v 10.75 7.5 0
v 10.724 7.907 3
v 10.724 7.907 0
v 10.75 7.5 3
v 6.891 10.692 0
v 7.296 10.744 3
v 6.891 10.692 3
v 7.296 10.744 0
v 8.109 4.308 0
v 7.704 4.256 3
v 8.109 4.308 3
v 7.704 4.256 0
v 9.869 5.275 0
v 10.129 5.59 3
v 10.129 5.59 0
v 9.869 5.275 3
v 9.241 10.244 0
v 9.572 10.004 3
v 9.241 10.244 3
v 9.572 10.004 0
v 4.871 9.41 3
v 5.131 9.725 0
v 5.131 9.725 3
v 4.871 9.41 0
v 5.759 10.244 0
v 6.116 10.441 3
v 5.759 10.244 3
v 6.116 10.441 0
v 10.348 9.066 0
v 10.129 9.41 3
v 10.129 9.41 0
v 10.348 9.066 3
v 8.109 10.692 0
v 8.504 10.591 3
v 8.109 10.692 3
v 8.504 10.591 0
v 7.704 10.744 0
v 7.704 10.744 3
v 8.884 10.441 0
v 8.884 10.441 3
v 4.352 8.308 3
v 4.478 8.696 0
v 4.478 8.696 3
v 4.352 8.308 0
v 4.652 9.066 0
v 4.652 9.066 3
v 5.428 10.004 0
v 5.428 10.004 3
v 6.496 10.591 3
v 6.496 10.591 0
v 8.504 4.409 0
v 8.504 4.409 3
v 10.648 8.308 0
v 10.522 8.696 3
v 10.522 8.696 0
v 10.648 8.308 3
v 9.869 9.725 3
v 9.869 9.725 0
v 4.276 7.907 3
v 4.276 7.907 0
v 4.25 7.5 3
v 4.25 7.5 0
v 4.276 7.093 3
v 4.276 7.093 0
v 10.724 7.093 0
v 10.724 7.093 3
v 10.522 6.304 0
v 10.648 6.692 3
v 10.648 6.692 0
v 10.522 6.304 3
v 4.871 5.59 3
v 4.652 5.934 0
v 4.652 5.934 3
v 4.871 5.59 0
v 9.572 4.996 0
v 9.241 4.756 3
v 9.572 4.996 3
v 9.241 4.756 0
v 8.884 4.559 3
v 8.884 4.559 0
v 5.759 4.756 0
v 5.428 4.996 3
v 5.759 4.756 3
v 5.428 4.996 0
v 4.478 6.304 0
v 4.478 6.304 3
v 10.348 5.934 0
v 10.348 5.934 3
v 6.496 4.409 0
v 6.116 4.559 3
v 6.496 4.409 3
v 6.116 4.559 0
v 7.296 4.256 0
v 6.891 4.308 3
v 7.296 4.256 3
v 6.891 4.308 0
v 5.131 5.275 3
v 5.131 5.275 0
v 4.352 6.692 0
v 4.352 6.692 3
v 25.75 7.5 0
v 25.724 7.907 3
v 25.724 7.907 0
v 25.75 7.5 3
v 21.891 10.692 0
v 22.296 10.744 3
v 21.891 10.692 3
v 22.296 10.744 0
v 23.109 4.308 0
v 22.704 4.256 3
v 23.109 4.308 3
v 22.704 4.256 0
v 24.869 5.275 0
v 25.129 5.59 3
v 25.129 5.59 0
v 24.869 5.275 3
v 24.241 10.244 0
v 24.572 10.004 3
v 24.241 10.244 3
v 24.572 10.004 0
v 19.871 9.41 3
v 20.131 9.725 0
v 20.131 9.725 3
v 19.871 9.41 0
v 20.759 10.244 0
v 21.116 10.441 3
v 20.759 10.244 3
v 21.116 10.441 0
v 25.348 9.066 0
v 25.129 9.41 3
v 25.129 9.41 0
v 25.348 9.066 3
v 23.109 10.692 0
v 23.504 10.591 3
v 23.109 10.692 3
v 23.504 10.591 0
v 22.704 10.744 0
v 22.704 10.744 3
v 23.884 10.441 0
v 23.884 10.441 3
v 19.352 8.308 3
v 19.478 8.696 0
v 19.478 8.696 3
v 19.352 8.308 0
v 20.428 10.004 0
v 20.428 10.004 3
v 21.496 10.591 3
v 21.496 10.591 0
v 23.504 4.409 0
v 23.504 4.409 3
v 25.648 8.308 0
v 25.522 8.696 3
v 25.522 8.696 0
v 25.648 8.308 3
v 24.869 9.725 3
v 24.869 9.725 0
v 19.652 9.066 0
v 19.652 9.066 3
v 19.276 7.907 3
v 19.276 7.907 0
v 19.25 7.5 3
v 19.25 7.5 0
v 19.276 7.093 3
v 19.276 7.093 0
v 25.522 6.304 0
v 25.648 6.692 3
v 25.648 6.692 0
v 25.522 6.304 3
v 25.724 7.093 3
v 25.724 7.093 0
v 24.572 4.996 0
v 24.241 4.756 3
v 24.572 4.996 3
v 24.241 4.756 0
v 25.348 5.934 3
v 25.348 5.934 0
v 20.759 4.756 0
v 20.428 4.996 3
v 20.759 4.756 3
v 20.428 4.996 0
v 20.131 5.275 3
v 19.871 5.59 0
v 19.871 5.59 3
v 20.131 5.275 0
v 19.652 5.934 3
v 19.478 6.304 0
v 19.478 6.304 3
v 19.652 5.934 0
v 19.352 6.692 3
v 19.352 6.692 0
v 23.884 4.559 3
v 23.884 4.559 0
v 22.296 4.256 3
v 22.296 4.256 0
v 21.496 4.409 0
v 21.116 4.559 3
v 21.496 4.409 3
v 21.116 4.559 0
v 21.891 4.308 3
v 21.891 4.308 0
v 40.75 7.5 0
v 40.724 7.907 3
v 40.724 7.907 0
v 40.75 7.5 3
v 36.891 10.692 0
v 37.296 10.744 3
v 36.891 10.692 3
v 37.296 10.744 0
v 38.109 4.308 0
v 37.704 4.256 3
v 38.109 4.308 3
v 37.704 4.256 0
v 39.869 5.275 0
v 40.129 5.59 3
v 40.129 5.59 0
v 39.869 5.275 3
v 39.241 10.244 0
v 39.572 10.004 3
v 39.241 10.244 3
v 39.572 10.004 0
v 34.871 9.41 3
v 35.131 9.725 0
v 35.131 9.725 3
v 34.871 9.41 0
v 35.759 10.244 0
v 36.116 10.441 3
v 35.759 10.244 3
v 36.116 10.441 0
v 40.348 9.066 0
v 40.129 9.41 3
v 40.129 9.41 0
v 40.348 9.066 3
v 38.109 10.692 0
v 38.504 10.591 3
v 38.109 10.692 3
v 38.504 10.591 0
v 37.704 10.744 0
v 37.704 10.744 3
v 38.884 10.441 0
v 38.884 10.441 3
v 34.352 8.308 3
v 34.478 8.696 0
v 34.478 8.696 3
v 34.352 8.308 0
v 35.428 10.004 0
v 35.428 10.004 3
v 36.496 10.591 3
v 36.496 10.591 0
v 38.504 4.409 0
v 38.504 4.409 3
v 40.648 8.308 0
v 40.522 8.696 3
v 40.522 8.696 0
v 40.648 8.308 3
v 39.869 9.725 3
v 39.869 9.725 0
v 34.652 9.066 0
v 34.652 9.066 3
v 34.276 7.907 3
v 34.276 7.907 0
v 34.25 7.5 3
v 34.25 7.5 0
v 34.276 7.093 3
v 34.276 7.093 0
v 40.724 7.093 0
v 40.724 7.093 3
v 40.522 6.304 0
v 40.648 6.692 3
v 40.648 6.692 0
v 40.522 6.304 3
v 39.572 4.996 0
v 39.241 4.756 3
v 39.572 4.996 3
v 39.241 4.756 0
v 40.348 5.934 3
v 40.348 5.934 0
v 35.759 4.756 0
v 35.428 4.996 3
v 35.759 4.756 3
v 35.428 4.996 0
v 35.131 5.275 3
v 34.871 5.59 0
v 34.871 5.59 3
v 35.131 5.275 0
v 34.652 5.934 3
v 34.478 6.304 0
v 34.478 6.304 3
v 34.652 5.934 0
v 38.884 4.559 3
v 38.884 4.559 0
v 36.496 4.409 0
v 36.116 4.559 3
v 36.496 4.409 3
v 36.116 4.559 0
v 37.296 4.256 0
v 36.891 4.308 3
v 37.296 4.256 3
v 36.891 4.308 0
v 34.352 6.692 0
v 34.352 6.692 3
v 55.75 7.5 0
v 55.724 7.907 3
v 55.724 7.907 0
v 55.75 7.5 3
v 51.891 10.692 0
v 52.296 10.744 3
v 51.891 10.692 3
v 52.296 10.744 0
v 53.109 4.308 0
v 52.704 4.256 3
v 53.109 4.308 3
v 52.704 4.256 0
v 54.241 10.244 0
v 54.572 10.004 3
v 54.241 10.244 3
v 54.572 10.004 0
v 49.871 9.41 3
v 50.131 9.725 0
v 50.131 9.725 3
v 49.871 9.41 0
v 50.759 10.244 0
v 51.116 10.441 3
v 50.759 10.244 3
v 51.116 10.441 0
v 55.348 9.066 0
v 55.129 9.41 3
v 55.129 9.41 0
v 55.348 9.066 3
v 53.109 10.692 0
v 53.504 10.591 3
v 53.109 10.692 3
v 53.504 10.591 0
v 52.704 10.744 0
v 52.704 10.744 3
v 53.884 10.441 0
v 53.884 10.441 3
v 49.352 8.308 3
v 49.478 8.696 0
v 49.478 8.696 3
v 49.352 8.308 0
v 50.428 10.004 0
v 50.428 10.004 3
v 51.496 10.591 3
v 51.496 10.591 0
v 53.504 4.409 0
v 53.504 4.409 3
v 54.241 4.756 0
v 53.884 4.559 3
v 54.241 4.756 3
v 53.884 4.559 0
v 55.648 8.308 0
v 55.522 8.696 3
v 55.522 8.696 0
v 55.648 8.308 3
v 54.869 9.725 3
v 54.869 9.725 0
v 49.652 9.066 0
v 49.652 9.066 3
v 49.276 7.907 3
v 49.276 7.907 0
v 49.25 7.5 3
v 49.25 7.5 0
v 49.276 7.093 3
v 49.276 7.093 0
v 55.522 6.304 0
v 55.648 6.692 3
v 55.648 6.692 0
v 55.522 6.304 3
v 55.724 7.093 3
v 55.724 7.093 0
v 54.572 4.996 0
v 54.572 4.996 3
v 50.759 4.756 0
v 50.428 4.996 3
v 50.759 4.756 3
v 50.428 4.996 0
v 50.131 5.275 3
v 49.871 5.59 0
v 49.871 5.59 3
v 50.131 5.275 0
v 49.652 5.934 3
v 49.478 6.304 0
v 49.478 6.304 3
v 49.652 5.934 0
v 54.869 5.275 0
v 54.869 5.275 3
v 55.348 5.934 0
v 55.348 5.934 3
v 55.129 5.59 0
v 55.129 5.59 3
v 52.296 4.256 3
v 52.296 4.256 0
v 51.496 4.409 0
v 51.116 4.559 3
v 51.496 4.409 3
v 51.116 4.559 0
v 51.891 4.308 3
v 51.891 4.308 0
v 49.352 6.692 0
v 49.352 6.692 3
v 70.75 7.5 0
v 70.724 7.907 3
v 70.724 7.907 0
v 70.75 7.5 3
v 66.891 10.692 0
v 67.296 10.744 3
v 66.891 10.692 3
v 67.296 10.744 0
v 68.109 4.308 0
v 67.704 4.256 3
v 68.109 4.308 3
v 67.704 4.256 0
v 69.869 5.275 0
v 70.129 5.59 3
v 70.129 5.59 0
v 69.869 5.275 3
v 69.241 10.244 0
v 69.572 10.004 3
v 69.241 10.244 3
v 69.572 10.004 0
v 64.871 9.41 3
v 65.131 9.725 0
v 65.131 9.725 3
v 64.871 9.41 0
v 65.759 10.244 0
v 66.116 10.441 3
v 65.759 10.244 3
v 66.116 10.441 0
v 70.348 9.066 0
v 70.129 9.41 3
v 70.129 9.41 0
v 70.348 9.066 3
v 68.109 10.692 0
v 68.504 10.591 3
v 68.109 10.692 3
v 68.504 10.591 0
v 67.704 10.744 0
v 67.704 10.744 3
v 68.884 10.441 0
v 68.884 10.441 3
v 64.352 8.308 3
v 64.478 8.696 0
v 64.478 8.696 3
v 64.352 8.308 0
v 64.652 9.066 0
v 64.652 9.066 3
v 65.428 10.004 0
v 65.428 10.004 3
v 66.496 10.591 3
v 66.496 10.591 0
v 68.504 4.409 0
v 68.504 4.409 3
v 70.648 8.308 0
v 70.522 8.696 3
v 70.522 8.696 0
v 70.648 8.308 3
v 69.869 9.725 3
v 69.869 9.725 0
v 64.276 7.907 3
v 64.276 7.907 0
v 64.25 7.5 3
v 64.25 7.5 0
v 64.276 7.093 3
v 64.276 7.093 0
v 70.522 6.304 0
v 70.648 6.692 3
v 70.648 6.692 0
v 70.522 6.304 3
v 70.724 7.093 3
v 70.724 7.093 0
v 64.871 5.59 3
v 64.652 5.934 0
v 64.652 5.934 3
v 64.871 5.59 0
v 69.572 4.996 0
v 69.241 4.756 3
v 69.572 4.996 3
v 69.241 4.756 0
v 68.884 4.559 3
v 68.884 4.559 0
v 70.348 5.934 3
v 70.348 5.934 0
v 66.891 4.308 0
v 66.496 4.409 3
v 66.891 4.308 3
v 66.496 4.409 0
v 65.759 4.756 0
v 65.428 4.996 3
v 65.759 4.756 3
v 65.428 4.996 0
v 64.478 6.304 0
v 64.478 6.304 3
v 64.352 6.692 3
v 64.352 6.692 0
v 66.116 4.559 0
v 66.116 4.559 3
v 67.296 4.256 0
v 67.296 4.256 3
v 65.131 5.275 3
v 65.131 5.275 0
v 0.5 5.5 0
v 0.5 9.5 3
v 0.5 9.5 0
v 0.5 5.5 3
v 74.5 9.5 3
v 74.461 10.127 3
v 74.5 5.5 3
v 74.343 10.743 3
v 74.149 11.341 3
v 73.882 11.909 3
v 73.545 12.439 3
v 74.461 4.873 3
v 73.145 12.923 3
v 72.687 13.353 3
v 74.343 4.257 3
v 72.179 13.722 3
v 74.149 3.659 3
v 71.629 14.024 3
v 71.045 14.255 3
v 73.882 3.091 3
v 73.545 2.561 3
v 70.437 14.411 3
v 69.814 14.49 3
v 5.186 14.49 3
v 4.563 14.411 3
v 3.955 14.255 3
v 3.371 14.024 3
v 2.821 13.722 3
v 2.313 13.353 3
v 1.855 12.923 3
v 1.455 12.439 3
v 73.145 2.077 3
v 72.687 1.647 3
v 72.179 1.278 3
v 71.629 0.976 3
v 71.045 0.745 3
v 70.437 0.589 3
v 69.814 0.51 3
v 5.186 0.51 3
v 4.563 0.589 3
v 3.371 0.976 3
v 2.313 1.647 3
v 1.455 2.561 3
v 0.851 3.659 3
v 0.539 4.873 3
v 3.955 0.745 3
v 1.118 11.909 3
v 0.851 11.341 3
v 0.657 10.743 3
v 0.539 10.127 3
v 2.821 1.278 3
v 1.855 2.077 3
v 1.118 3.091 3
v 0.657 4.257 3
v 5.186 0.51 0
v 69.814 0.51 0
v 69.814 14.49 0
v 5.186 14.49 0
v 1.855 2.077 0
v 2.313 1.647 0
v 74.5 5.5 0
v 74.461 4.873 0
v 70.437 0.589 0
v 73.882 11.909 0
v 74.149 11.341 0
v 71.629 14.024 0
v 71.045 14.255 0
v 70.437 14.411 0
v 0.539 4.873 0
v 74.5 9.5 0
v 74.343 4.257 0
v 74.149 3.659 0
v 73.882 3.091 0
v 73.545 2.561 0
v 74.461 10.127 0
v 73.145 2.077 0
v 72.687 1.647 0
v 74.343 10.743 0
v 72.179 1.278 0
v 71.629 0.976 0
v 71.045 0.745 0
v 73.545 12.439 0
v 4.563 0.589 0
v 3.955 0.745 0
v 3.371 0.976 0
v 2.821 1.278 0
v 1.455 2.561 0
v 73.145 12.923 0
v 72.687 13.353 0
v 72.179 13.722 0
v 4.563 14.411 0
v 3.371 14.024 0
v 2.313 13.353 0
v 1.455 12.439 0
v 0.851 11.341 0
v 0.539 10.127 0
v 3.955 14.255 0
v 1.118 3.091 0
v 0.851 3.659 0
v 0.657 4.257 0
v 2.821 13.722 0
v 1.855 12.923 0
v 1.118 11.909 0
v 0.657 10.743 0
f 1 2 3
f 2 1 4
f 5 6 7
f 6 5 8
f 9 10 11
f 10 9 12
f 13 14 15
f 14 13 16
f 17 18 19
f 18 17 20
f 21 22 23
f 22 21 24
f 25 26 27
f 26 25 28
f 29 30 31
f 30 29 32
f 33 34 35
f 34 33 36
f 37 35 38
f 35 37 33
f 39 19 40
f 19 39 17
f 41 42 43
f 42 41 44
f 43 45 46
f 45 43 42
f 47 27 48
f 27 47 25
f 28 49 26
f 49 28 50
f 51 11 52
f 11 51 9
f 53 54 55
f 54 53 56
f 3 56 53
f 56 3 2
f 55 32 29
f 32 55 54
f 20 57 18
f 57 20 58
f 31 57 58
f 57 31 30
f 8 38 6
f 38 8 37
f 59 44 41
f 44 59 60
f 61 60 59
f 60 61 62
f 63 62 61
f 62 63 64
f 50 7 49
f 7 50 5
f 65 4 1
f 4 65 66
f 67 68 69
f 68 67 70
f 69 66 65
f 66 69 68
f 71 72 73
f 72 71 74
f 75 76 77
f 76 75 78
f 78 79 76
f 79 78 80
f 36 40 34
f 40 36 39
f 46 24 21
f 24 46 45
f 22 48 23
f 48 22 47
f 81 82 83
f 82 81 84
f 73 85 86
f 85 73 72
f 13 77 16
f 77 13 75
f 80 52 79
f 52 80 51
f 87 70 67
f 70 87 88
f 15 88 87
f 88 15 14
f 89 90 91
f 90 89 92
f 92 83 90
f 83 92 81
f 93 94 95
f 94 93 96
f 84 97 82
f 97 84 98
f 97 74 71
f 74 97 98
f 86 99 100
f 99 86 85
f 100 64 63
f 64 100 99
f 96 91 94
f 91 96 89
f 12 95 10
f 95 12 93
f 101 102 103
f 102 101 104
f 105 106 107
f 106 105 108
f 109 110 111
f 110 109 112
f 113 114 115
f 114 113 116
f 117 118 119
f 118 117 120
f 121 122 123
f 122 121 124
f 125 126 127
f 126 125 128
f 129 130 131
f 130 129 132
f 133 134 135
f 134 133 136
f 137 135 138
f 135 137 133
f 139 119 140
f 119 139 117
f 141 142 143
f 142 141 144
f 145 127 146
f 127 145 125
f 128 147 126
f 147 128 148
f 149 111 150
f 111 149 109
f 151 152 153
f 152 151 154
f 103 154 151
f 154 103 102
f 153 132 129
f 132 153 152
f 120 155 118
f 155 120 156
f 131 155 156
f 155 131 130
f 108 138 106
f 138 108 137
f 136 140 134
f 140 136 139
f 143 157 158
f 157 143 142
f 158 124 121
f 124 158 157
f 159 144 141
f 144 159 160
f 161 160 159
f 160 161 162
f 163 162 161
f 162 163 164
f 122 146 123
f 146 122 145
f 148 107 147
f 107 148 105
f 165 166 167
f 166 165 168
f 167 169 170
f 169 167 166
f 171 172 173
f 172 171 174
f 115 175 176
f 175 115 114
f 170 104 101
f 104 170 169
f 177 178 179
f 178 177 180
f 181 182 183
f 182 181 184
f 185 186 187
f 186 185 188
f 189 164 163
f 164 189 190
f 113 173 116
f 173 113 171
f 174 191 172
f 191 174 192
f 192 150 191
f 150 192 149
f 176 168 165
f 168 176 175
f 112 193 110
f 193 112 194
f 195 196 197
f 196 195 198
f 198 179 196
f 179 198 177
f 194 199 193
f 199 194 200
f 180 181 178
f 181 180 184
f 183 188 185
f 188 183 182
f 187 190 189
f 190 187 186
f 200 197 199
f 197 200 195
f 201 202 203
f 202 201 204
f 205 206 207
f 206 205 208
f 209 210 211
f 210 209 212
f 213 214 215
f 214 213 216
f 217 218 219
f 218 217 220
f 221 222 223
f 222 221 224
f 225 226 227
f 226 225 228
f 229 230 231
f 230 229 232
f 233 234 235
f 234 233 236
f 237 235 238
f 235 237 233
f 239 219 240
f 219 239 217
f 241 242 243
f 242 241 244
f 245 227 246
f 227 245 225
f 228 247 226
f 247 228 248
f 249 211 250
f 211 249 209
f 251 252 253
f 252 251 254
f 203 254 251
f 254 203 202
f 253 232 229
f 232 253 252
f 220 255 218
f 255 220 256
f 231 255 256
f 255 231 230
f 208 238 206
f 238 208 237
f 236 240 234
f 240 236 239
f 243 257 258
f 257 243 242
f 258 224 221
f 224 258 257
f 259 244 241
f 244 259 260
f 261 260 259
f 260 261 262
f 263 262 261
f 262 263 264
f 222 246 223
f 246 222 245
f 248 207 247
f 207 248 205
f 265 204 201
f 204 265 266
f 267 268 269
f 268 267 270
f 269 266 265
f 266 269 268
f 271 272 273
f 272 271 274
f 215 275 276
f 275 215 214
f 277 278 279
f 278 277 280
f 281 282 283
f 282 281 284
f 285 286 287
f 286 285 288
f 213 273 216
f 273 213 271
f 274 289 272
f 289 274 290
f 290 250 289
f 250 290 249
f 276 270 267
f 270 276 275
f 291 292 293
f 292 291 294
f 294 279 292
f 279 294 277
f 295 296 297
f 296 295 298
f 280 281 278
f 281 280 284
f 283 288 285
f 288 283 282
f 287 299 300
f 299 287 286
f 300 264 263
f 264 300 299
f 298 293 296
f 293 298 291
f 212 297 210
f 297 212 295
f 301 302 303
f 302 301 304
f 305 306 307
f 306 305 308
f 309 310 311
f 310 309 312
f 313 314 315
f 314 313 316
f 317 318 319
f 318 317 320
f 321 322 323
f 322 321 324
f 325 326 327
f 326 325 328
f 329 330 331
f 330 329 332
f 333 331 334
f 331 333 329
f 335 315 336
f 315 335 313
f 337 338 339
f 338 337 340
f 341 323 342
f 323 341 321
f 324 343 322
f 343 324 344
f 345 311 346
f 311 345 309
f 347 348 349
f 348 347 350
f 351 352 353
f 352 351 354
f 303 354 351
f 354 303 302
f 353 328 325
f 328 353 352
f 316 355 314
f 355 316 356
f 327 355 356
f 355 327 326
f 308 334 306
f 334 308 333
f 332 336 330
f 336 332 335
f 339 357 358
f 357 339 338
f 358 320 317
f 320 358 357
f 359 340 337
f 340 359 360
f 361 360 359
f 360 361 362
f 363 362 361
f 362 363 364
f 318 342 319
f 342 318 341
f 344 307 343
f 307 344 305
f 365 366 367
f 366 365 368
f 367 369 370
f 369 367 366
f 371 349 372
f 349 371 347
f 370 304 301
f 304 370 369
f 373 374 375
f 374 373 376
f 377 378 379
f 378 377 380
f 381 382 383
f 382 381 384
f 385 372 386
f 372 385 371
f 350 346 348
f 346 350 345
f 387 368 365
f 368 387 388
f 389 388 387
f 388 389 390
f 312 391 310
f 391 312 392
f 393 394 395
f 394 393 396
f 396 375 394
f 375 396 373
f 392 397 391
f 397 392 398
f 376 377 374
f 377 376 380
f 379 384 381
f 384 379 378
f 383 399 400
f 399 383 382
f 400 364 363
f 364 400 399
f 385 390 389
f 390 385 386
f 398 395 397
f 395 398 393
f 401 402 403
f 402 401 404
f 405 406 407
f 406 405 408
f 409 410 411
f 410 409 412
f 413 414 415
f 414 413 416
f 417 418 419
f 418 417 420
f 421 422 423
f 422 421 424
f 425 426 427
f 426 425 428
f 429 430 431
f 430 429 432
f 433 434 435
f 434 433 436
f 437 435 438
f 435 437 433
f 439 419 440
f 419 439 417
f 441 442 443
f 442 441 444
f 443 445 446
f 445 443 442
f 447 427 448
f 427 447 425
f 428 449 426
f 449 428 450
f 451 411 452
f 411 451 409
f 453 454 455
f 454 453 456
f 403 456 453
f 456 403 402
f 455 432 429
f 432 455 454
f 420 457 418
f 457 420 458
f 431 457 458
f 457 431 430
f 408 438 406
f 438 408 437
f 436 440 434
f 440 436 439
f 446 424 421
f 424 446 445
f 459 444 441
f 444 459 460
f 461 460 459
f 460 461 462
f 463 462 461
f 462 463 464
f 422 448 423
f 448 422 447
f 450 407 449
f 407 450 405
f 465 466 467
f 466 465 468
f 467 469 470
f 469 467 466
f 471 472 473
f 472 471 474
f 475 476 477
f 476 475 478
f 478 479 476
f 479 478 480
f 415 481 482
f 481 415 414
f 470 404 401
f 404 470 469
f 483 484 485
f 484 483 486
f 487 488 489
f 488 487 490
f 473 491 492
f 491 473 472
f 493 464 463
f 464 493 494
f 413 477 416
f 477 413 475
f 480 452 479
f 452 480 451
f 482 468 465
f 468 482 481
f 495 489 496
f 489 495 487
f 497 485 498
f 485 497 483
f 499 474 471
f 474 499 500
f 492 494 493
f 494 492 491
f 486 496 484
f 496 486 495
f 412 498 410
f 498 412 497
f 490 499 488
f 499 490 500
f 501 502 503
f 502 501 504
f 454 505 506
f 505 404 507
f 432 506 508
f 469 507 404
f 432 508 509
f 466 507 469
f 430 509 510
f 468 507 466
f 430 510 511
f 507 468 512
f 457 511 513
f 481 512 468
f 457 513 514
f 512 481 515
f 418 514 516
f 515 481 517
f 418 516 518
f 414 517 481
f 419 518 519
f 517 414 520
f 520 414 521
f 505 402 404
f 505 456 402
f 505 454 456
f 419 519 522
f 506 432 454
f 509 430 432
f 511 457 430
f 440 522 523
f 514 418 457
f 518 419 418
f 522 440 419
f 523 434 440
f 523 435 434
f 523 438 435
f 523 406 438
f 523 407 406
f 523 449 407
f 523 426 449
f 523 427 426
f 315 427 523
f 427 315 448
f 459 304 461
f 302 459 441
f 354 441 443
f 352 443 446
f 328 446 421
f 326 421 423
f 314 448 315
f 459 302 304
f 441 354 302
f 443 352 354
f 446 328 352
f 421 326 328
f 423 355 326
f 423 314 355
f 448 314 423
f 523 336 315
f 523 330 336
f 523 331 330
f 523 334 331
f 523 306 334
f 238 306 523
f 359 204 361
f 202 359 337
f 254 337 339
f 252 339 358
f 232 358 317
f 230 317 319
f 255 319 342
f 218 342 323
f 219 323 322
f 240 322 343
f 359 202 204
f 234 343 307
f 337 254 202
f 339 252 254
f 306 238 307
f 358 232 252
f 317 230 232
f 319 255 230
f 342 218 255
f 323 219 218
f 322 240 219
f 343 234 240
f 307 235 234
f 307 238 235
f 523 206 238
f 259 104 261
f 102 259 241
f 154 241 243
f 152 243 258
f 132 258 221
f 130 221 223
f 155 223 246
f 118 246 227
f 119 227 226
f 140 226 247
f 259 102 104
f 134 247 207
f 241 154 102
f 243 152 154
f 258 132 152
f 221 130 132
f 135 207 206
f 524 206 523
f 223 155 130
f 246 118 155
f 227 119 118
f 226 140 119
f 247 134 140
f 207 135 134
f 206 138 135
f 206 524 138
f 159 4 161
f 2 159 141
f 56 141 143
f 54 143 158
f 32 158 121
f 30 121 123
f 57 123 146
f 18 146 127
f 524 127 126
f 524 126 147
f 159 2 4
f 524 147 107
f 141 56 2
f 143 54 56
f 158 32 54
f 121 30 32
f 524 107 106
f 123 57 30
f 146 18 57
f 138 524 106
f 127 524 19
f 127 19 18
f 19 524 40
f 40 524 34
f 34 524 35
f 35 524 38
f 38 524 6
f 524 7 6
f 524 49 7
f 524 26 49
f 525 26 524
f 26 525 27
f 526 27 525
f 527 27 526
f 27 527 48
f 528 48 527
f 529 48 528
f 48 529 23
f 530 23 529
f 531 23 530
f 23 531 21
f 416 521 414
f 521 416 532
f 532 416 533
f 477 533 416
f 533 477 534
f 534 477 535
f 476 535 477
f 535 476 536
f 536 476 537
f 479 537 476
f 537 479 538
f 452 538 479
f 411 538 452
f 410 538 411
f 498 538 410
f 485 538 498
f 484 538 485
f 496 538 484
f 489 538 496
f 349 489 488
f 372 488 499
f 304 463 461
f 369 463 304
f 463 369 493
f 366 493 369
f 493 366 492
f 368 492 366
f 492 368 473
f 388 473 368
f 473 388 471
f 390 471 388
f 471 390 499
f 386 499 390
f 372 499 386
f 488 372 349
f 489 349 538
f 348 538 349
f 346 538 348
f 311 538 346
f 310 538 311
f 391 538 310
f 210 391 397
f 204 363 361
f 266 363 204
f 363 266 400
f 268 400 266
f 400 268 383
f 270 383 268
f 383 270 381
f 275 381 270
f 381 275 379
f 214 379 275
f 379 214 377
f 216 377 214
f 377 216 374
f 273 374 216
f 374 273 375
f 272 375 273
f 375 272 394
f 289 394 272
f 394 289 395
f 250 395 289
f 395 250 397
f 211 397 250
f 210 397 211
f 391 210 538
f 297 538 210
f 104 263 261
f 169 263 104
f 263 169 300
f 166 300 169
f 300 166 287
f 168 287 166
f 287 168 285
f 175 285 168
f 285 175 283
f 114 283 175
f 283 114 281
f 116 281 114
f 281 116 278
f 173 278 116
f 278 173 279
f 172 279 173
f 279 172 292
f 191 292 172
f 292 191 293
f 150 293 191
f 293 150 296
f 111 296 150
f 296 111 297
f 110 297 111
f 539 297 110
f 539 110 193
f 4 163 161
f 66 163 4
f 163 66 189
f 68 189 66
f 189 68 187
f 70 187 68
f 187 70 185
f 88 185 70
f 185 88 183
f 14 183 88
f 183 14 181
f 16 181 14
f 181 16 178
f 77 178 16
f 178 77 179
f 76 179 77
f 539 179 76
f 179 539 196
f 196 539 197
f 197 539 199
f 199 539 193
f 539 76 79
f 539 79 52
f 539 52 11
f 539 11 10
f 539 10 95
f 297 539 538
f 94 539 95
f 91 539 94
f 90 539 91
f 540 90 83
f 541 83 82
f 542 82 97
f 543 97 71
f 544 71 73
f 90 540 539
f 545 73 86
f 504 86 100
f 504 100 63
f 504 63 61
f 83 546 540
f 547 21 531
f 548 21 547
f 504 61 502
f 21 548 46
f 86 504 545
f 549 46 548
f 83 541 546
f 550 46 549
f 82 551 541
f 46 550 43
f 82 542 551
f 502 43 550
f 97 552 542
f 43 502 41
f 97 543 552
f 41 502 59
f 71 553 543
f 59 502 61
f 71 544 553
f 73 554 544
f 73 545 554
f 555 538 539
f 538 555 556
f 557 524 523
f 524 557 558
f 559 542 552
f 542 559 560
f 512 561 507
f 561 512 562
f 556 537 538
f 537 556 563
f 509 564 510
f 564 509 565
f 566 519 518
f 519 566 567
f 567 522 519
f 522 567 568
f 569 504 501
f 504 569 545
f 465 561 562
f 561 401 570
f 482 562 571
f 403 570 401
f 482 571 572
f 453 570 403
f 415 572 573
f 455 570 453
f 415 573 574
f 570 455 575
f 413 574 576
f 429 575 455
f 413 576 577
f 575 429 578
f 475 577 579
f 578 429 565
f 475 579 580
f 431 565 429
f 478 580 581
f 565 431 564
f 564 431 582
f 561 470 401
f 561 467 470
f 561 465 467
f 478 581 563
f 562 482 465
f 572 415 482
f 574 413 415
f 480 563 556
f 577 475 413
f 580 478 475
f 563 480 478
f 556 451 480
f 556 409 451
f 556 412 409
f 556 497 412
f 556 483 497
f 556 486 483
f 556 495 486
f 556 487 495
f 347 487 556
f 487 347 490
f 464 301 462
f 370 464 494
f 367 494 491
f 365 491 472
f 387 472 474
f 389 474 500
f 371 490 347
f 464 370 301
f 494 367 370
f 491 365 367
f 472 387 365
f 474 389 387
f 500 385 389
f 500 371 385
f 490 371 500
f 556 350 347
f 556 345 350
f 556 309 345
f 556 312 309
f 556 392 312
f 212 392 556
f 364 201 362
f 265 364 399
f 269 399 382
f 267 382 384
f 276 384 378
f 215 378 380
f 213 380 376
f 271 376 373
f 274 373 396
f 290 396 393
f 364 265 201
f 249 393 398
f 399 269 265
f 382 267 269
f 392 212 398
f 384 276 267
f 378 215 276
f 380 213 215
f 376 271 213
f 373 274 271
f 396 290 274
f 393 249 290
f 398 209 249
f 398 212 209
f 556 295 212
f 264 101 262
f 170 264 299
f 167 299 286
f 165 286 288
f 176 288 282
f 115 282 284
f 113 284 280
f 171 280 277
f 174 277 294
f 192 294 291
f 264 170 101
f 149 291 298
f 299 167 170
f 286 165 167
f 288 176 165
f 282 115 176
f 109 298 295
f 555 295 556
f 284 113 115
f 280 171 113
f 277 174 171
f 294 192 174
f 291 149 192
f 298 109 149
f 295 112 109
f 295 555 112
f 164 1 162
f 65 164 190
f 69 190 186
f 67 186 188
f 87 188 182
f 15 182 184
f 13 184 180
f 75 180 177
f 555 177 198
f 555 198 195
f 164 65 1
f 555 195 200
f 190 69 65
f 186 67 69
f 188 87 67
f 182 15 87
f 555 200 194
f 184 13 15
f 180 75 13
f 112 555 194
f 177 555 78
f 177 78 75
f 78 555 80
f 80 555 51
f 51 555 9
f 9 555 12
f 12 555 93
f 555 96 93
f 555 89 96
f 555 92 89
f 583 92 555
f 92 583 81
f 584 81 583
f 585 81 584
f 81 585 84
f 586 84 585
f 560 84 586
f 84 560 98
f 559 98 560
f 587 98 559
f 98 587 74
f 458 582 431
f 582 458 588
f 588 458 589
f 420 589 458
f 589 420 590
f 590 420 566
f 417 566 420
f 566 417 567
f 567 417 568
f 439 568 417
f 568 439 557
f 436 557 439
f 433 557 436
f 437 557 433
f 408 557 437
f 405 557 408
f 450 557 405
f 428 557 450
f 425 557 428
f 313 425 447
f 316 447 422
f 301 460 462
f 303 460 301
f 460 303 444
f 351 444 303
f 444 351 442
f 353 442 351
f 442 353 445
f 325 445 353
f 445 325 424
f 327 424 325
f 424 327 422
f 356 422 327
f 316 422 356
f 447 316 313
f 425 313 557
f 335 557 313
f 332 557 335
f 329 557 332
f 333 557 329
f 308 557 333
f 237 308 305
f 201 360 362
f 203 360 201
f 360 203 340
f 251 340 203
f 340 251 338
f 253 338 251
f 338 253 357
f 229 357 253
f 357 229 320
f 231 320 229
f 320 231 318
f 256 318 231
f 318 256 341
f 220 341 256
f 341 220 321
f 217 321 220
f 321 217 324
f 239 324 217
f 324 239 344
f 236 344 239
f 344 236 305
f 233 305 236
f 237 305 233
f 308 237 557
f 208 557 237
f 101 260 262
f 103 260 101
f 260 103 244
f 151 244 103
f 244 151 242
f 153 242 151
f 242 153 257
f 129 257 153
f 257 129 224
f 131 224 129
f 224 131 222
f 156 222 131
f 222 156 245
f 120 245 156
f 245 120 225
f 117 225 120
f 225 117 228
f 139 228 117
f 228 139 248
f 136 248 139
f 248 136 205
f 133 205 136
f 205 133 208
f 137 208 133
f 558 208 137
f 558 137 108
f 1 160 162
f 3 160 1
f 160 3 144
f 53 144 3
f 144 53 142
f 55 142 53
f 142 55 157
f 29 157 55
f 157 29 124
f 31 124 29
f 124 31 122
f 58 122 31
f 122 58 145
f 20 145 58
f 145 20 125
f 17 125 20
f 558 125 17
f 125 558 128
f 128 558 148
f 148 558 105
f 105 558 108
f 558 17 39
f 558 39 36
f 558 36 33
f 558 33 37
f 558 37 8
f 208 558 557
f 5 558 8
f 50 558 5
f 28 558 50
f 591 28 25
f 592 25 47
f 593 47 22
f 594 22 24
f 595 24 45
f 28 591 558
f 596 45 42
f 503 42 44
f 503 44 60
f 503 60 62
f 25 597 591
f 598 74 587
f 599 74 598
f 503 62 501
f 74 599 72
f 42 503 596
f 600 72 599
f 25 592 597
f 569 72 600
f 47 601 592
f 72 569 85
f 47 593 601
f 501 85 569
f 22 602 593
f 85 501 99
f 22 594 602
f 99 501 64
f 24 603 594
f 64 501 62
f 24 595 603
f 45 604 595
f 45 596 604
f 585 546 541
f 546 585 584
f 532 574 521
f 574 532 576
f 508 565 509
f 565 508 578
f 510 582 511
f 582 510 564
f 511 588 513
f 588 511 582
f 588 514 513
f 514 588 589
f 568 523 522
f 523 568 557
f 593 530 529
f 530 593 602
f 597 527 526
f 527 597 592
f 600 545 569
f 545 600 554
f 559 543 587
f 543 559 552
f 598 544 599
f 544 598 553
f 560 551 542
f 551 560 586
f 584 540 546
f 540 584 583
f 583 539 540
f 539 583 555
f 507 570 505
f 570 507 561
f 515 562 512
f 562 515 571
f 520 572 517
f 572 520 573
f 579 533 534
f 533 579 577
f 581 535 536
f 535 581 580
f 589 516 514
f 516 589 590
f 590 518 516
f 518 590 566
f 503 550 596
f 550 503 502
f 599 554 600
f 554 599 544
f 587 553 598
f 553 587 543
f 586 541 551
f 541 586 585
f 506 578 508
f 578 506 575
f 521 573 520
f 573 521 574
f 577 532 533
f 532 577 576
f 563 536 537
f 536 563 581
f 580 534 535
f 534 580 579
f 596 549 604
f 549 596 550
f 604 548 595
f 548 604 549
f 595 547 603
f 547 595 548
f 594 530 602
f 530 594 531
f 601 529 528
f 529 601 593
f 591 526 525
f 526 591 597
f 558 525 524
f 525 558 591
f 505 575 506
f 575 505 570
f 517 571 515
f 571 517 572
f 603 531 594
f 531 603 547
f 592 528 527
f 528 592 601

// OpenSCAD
// Generated by SolidPython 1.1.3 on 2023-01-30 13:34:57
$fn = 50;


difference() {
	union() {
		translate(v = [37.5000000000, 7.5000000000, 0]) {
			rotate(a = [0, 0, 0]) {
				hull() {
					translate(v = [-32.0000000000, 2.0000000000, 0]) {
						rotate(a = [0, 0, 0]) {
							translate(v = [0, 0, 0]) {
								rotate(a = [0, 0, 0]) {
									cylinder(h = 3, r = 5);
								}
							}
						}
					}
					translate(v = [32.0000000000, 2.0000000000, 0]) {
						rotate(a = [0, 0, 0]) {
							translate(v = [0, 0, 0]) {
								rotate(a = [0, 0, 0]) {
									cylinder(h = 3, r = 5);
								}
							}
						}
					}
					translate(v = [-32.0000000000, -2.0000000000, 0]) {
						rotate(a = [0, 0, 0]) {
							translate(v = [0, 0, 0]) {
								rotate(a = [0, 0, 0]) {
									cylinder(h = 3, r = 5);
								}
							}
						}
					}
					translate(v = [32.0000000000, -2.0000000000, 0]) {
						rotate(a = [0, 0, 0]) {
							translate(v = [0, 0, 0]) {
								rotate(a = [0, 0, 0]) {
									cylinder(h = 3, r = 5);
								}
							}
						}
					}
				}
			}
		}
	}
	union() {
		translate(v = [7.5000000000, 7.5000000000, 0]) {
			rotate(a = [0, 0, 0]) {
				translate(v = [0, 0, -50]) {
					rotate(a = [0, 0, 0]) {
						cylinder(h = 100, r = 3.2500000000);
					}
				}
			}
		}
		translate(v = [22.5000000000, 7.5000000000, 0]) {
			rotate(a = [0, 0, 0]) {
				translate(v = [0, 0, -50]) {
					rotate(a = [0, 0, 0]) {
						cylinder(h = 100, r = 3.2500000000);
					}
				}
			}
		}
		translate(v = [37.5000000000, 7.5000000000, 0]) {
			rotate(a = [0, 0, 0]) {
				translate(v = [0, 0, -50]) {
					rotate(a = [0, 0, 0]) {
						cylinder(h = 100, r = 3.2500000000);
					}
				}
			}
		}
		translate(v = [52.5000000000, 7.5000000000, 0]) {
			rotate(a = [0, 0, 0]) {
				translate(v = [0, 0, -50]) {
					rotate(a = [0, 0, 0]) {
						cylinder(h = 100, r = 3.2500000000);
					}
				}
			}
		}
		translate(v = [67.5000000000, 7.5000000000, 0]) {
			rotate(a = [0, 0, 0]) {
				translate(v = [0, 0, -50]) {
					rotate(a = [0, 0, 0]) {
						cylinder(h = 100, r = 3.2500000000);
					}
				}
			}
		}
	}
}
/***********************************************
*********      SolidPython code:      **********
************************************************
 
from solid import *
import os
import subprocess

import oomB

import opsc_library_gen

mode = "laser"
#mode = "3d_print"

defined_objects = {}

radius_dict = {}
countersunk_dict = {}


def set_mode(m):
    global mode
    mode = m
    radius_dict['M6'] = 6.5/2
    radius_dict['M3'] = 3.3/2
    if mode == "laser":
        radius_dict['M6'] = 6/2
        radius_dict['M3'] = 3/2

    countersunk_dict['M3'] = {}
    countersunk_dict['M3']['little_rad'] = radius_dict['M3']
    countersunk_dict['M3']['big_rad'] = (5.5+0.6)/2
    if mode == "laser":
        countersunk_dict['M3']['big_rad'] = (4.75+0.6)/2
        countersunk_dict['M3']['little_rad'] = (4.75+0.6)/2

    countersunk_dict['M3']['height'] = 1.7


def opsc_make_object(filename, objects, save_type="none",resolution=50, layers = 1, tilediff = 200, mode="laser"):
    set_mode(mode)
    save_type = save_type.lower()
    os.makedirs(os.path.dirname(filename), exist_ok=True)
    final_object = opsc_get_object(objects)
    # Save the final object to the specified filename    
    scad_render_to_file(final_object, filename, file_header='$fn = %s;' % resolution, include_orig_code=True)
    if mode == "laser":
        filename_laser = filename.replace(".scad","-flat.scad")
        scad_render_to_file(getLaser(final_object, layers=layers, tilediff=tilediff), filename_laser, file_header='$fn = %s;' % resolution, include_orig_code=True)
        if save_type == "all":
            saveToAll(filename_laser)
        elif save_type == "dxf":
            saveToDxf(filename_laser)
    if save_type == "all":
        saveToAll(filename)
    elif save_type == "dxf":
        saveToDxf(filename)


def opsc_get_object(objects):
    # Create the solidpython objects
    positive_objects = [get_opsc_item(obj) for obj in objects if obj['type'] == 'positive']
    negative_objects = [get_opsc_item(obj) for obj in objects if obj['type'] == 'negative']
    # Union the positive objects
    positive_object = union()(*positive_objects)
    # Union the negative objects
    negative_object = union()(*negative_objects)
    # Create the final object by subtracting the negative objects from the positive objects
    return difference()(positive_object, negative_object)

def get_opsc_item(params):
    # A dictionary to map radius string values to numerical values
    #radius_dict = {'small': 5, 'medium': 10, 'large': 15}
    # An array of function names for basic shapes
    basic_shapes = ['cube', 'sphere', 'cylinder']
    
    # An array of function names for other shapes
    other_shapes = ['hole', 'slot', 'rounded_rectangle', 'countersunk']
    


    # Convert radius to r if present, and remove radius from the params dictionary
    if 'radius' in params:
        if isinstance(params['radius'], str):
            # Use the radius_dict to map the radius string value to a numerical value
            params['r'] = radius_dict[params['radius']]
        else:
            params['r'] = params['radius']
        del params['radius']
    

    # Check if the object type is a basic shape
    if params['shape'] in basic_shapes:
        # Remove shape and unexpected dictionary values
        allowed_keys = {'size', 'r', 'r1', 'r2', 'd', 'h', 'rw', 'rh', 'dw', 'dh'}
        shape_params = {k: v for k, v in params.items() if k in allowed_keys}

        # Call the corresponding function for the shape parameter, using ** notation to pass the shape_params dictionary as keyword arguments
        return get_opsc_transform(params,globals()[params['shape']](**shape_params))
    
    # If the object type is not a basic shape, check if it's a defined object or one of the other shapes
    elif params['shape'] in other_shapes:
        # Call the corresponding function for the shape parameter, passing the params dictionary as an argument
        p2 = copy.deepcopy(params)
        p2["pos"] = [0,0,0]
        return get_opsc_transform(params,globals()[params['shape']](p2))
    
    # If the object is not a basic shape or a defined object, try to import it from a .scad file
    else:
        obj = defined_objects[params['shape']]
        return get_opsc_transform(params,obj)

def get_opsc_transform(params, solid_obj):
    # Rotate the object based on the 'rot' field in the params dictionary, or the 'rotX', 'rotY', and 'rotZ' fields if 'rot' is not present
    rot = params.get('rot', [])
    if rot:
        rotX, rotY, rotZ = rot
    else:
        rotX = params.get('rotX', 0)
        rotY = params.get('rotY', 0)
        rotZ = params.get('rotZ', 0)
    solid_obj = rotate([rotX, rotY, rotZ])(solid_obj)

    # Translate the object based on the 'pos' field in the params dictionary, or the 'x', 'y', and 'z' fields if 'pos' is not present
    pos = params.get('pos', [])
    if pos:
        x, y, z = pos
    else:
        x = params.get('x', 0)
        y = params.get('y', 0)
        z = params.get('z', 0)
    solid_obj = translate([x, y, z])(solid_obj)
    return solid_obj


import random

def opsc_easy_array(type, shape, repeats, pos_start, shift_arr, **kwargs):
    for i in range(0,3):
        repeats.append(1)
        pos_start.append(0)
        shift_arr.append(0)
    return_objects = []

    for x in range(0,repeats[0]):
        for y in range(0,repeats[1]):
            for z in range(0,repeats[2]):
                return_objects.append(opsc_easy(type, shape, pos=[pos_start[0]+x*shift_arr[0],pos_start[1]+y*shift_arr[1],pos_start[2]+z*shift_arr[2]], **kwargs))
    return return_objects                



def opsc_easy(type, shape, **kwargs):
    obj = {
        'type': type,
        'shape': shape
    }
    for param in ['size', 'r', 'r1', 'r2', 'd', 'h', 'rw', 'rh', 'dw', 'dh', 'pos', 'x', 'y', 'z', 'rot', 'rotX', 'rotY', 'rotZ', "w"]:
        if param in kwargs:
            obj[param] = kwargs[param]
    return obj

def hole(params):
    p2 = copy.deepcopy(params)  
    # Check if the radius is a string and replace it with the corresponding value from the dictionary
    if isinstance(p2['r'], str):
        p2['r'] = radius_dict[p2['r']]
    
    # Set the height to 100 if not specified
    if 'h' not in p2:
        p2['h'] = 100
        p2["pos"] = [0,0,-50]
    p2["center"] = True
    # Create the cylinder object
    p2["shape"] = "cylinder"
    p2["type"] = "positive"

    return get_opsc_item(p2)

import copy

def countersunk(params):
    p2 = copy.deepcopy(params)
    counter_rad = p2['r']
    p2['r'] = radius_dict[p2['r']]
    hp = copy.deepcopy(p2)
    hp["type"] = "positive"
    hp["shape"] = "hole"
    del hp["rot"]
    hol = get_opsc_item(hp)
    
    cp = copy.deepcopy(p2)
    cp["h"] = countersunk_dict[counter_rad]["height"]
    cp["r2"] = countersunk_dict[counter_rad]["little_rad"]
    cp["r1"] = countersunk_dict[counter_rad]["big_rad"]
    del cp["r"]
    del cp["rot"]
    cp["type"] = "positive"
    cp["shape"] = "cylinder"
    cp["pos"] = [0,0,0]

    top = get_opsc_item(cp)
    return union()(hol,top)



def slot(params):  
    p2 = copy.deepcopy(params) 
    if isinstance(p2['r'], str):
        p2['r'] = radius_dict[p2['r']]
    p2["type"] = "positive"
    p2["shape"] = "hole"
    del p2["rot"]
    p2["pos"] = [0,0,0]
    left = copy.deepcopy(p2)
    right = copy.deepcopy(p2)
    left["pos"][0] = p2["w"] / 2 - p2["r"] 
    
    right["pos"][0] = -p2["w"] / 2 + p2["r"] 
    pass
    leftObj = get_opsc_item(left)
    rightObj = get_opsc_item(right)
    return hull()(leftObj, rightObj)

def rounded_rectangle(params):   
    p2 = copy.deepcopy(params) 
    p2["h"] = p2["size"][2]
    p2["pos"] = p2.get("pos", [0, 0, 0]) 
    p2["type"] = "positive"
    p2["shape"] = "hole"
    p2["pos"] = [0,0,0]
    
    if 'rot' in p2:
        del p2["rot"]   
    if 'r' not in p2:
        p2["r"] = 5 
    tl = copy.deepcopy(p2)
    tr = copy.deepcopy(p2)
    bl = copy.deepcopy(p2)
    br = copy.deepcopy(p2)
    tl["pos"][0] = -(p2["size"][0] - p2["r"]*2)/2
    tl["pos"][1] = (p2["size"][1] - p2["r"]*2)/2
    tr["pos"][0] = (p2["size"][0] - p2["r"]*2)/2
    tr["pos"][1] = (p2["size"][1] - p2["r"]*2)/2
    bl["pos"][0] = -(p2["size"][0] - p2["r"]*2)/2
    bl["pos"][1] = -(p2["size"][1] - p2["r"]*2)/2
    br["pos"][0] = (p2["size"][0] - p2["r"]*2)/2
    br["pos"][1] = -(p2["size"][1] - p2["r"]*2)/2
    del tl["size"]
    del tr["size"]
    del bl["size"]
    del br["size"]
    tlo = get_opsc_item(tl)
    tro = get_opsc_item(tr)
    blo = get_opsc_item(bl)
    bro = get_opsc_item(br)    
    return hull()(tlo, tro, blo, bro)



def import_scad_object(filename):
    # Import the .scad file and convert it to a solidpython object
    #filename = "parts"
    obj = import_scad(filename)
    return obj.main()
    


import os
import solid as solidpython

# A dictionary to store the defined objects


def load_scad_objects():
    opsc_library_gen.gen_library(defined_objects)

import random

def test(num_objects):
    objects = []
    for i in range(num_objects):
        # Choose a random shape
        #shape = random.choice(['cube', 'sphere', 'cylinder', 'hole', 'slot', "rounded_rectangle"])
        shape = random.choice(["rounded_rectangle"])

        # Choose a random type
        type = random.choice(['positive', 'negative'])
        
        # Create an empty object dictionary
        obj = {'shape': shape, 'type': type}
        
        # Set shape-specific parameters
        if obj['shape'] in ['cube']:
            obj['size'] =  [random.uniform(5, 15), random.uniform(5, 15), random.uniform(5, 15)]
        if obj['shape'] in ['rounded_rectangle']:
            obj['size'] =  [random.uniform(5, 15), random.uniform(5, 15), random.uniform(5, 15)]
            obj['r'] = random.uniform(0.5, 5)
        elif obj['shape'] == 'sphere':
            obj['r'] = random.uniform(5, 15)
        elif obj['shape'] in ['cylinder', 'hole']:
            obj['r'] = random.uniform(0.5, 5)
            obj['h'] = random.uniform(5, 15)
        elif obj['shape'] == 'slot':
            obj['r'] = random.uniform(0.5, 5)
            obj['h'] = random.uniform(5, 15)
            obj['w'] = random.uniform(5, 15)
        
        # Set a random position and rotation
        obj['pos'] = [random.uniform(-20, 20), random.uniform(-20, 20), random.uniform(-20, 20)]
        obj['rot'] = [random.uniform(-180, 180), random.uniform(-180, 180), random.uniform(-180, 180)]
        
        # Add the object to the list
        objects.append(obj)
    return objects

####### old file saving
def saveToAll(fileIn):
    saveToDxf(fileIn)
    saveToPng(fileIn)
    saveToStl(fileIn)
    saveToSvg(fileIn)

def saveToDxf(fileIn, fileOut="", copy_to_laser=True):
    if fileOut == "":
        fileOut = fileIn.replace(".scad",".dxf")
    saveToFile(fileIn, fileOut)


    
def saveToPng(fileIn, fileOut="",extra="--render"):
    if fileOut == "":
        fileOut = fileIn.replace(".scad",".png")
    saveToFile(fileIn, fileOut)

def saveToStl(fileIn, fileOut=""):
    if fileOut == "":
        fileOut = fileIn.replace(".scad",".stl")
    saveToFile(fileIn, fileOut)
    
def saveToSvg(fileIn, fileOut=""):
    if fileOut == "":
        fileOut = fileIn.replace(".scad",".svg")
    saveToFile(fileIn, fileOut)

def saveToFile(fileIn, fileOut,extra=""):
    #extra = extra + " --colorscheme Tomorrow"

    launchStr = 'openscad -o "' + fileOut + '"' + extra + ' "' + fileIn + '"'
    if ".png" in fileOut:
        launchStr = launchStr + " --render"
    print("            saveToFile launch string: " + launchStr)
    subprocess.run(launchStr)
    x=0

def getLaser(final_object,start=1.5,layers=1,thickness=3,tilediff=200):
        rv= []

        for x in range(layers):
            rv.append(translate([0,x*tilediff,0])(
                    projection()(
                        intersection()(translate([-500,-500,start+x*thickness])(cube(size=[1000,1000,0.1])),
                            final_object
                        )
                    )
            )
            )
            
        return union()(rv)

set_mode("laser")
load_scad_objects() 
 
************************************************/
